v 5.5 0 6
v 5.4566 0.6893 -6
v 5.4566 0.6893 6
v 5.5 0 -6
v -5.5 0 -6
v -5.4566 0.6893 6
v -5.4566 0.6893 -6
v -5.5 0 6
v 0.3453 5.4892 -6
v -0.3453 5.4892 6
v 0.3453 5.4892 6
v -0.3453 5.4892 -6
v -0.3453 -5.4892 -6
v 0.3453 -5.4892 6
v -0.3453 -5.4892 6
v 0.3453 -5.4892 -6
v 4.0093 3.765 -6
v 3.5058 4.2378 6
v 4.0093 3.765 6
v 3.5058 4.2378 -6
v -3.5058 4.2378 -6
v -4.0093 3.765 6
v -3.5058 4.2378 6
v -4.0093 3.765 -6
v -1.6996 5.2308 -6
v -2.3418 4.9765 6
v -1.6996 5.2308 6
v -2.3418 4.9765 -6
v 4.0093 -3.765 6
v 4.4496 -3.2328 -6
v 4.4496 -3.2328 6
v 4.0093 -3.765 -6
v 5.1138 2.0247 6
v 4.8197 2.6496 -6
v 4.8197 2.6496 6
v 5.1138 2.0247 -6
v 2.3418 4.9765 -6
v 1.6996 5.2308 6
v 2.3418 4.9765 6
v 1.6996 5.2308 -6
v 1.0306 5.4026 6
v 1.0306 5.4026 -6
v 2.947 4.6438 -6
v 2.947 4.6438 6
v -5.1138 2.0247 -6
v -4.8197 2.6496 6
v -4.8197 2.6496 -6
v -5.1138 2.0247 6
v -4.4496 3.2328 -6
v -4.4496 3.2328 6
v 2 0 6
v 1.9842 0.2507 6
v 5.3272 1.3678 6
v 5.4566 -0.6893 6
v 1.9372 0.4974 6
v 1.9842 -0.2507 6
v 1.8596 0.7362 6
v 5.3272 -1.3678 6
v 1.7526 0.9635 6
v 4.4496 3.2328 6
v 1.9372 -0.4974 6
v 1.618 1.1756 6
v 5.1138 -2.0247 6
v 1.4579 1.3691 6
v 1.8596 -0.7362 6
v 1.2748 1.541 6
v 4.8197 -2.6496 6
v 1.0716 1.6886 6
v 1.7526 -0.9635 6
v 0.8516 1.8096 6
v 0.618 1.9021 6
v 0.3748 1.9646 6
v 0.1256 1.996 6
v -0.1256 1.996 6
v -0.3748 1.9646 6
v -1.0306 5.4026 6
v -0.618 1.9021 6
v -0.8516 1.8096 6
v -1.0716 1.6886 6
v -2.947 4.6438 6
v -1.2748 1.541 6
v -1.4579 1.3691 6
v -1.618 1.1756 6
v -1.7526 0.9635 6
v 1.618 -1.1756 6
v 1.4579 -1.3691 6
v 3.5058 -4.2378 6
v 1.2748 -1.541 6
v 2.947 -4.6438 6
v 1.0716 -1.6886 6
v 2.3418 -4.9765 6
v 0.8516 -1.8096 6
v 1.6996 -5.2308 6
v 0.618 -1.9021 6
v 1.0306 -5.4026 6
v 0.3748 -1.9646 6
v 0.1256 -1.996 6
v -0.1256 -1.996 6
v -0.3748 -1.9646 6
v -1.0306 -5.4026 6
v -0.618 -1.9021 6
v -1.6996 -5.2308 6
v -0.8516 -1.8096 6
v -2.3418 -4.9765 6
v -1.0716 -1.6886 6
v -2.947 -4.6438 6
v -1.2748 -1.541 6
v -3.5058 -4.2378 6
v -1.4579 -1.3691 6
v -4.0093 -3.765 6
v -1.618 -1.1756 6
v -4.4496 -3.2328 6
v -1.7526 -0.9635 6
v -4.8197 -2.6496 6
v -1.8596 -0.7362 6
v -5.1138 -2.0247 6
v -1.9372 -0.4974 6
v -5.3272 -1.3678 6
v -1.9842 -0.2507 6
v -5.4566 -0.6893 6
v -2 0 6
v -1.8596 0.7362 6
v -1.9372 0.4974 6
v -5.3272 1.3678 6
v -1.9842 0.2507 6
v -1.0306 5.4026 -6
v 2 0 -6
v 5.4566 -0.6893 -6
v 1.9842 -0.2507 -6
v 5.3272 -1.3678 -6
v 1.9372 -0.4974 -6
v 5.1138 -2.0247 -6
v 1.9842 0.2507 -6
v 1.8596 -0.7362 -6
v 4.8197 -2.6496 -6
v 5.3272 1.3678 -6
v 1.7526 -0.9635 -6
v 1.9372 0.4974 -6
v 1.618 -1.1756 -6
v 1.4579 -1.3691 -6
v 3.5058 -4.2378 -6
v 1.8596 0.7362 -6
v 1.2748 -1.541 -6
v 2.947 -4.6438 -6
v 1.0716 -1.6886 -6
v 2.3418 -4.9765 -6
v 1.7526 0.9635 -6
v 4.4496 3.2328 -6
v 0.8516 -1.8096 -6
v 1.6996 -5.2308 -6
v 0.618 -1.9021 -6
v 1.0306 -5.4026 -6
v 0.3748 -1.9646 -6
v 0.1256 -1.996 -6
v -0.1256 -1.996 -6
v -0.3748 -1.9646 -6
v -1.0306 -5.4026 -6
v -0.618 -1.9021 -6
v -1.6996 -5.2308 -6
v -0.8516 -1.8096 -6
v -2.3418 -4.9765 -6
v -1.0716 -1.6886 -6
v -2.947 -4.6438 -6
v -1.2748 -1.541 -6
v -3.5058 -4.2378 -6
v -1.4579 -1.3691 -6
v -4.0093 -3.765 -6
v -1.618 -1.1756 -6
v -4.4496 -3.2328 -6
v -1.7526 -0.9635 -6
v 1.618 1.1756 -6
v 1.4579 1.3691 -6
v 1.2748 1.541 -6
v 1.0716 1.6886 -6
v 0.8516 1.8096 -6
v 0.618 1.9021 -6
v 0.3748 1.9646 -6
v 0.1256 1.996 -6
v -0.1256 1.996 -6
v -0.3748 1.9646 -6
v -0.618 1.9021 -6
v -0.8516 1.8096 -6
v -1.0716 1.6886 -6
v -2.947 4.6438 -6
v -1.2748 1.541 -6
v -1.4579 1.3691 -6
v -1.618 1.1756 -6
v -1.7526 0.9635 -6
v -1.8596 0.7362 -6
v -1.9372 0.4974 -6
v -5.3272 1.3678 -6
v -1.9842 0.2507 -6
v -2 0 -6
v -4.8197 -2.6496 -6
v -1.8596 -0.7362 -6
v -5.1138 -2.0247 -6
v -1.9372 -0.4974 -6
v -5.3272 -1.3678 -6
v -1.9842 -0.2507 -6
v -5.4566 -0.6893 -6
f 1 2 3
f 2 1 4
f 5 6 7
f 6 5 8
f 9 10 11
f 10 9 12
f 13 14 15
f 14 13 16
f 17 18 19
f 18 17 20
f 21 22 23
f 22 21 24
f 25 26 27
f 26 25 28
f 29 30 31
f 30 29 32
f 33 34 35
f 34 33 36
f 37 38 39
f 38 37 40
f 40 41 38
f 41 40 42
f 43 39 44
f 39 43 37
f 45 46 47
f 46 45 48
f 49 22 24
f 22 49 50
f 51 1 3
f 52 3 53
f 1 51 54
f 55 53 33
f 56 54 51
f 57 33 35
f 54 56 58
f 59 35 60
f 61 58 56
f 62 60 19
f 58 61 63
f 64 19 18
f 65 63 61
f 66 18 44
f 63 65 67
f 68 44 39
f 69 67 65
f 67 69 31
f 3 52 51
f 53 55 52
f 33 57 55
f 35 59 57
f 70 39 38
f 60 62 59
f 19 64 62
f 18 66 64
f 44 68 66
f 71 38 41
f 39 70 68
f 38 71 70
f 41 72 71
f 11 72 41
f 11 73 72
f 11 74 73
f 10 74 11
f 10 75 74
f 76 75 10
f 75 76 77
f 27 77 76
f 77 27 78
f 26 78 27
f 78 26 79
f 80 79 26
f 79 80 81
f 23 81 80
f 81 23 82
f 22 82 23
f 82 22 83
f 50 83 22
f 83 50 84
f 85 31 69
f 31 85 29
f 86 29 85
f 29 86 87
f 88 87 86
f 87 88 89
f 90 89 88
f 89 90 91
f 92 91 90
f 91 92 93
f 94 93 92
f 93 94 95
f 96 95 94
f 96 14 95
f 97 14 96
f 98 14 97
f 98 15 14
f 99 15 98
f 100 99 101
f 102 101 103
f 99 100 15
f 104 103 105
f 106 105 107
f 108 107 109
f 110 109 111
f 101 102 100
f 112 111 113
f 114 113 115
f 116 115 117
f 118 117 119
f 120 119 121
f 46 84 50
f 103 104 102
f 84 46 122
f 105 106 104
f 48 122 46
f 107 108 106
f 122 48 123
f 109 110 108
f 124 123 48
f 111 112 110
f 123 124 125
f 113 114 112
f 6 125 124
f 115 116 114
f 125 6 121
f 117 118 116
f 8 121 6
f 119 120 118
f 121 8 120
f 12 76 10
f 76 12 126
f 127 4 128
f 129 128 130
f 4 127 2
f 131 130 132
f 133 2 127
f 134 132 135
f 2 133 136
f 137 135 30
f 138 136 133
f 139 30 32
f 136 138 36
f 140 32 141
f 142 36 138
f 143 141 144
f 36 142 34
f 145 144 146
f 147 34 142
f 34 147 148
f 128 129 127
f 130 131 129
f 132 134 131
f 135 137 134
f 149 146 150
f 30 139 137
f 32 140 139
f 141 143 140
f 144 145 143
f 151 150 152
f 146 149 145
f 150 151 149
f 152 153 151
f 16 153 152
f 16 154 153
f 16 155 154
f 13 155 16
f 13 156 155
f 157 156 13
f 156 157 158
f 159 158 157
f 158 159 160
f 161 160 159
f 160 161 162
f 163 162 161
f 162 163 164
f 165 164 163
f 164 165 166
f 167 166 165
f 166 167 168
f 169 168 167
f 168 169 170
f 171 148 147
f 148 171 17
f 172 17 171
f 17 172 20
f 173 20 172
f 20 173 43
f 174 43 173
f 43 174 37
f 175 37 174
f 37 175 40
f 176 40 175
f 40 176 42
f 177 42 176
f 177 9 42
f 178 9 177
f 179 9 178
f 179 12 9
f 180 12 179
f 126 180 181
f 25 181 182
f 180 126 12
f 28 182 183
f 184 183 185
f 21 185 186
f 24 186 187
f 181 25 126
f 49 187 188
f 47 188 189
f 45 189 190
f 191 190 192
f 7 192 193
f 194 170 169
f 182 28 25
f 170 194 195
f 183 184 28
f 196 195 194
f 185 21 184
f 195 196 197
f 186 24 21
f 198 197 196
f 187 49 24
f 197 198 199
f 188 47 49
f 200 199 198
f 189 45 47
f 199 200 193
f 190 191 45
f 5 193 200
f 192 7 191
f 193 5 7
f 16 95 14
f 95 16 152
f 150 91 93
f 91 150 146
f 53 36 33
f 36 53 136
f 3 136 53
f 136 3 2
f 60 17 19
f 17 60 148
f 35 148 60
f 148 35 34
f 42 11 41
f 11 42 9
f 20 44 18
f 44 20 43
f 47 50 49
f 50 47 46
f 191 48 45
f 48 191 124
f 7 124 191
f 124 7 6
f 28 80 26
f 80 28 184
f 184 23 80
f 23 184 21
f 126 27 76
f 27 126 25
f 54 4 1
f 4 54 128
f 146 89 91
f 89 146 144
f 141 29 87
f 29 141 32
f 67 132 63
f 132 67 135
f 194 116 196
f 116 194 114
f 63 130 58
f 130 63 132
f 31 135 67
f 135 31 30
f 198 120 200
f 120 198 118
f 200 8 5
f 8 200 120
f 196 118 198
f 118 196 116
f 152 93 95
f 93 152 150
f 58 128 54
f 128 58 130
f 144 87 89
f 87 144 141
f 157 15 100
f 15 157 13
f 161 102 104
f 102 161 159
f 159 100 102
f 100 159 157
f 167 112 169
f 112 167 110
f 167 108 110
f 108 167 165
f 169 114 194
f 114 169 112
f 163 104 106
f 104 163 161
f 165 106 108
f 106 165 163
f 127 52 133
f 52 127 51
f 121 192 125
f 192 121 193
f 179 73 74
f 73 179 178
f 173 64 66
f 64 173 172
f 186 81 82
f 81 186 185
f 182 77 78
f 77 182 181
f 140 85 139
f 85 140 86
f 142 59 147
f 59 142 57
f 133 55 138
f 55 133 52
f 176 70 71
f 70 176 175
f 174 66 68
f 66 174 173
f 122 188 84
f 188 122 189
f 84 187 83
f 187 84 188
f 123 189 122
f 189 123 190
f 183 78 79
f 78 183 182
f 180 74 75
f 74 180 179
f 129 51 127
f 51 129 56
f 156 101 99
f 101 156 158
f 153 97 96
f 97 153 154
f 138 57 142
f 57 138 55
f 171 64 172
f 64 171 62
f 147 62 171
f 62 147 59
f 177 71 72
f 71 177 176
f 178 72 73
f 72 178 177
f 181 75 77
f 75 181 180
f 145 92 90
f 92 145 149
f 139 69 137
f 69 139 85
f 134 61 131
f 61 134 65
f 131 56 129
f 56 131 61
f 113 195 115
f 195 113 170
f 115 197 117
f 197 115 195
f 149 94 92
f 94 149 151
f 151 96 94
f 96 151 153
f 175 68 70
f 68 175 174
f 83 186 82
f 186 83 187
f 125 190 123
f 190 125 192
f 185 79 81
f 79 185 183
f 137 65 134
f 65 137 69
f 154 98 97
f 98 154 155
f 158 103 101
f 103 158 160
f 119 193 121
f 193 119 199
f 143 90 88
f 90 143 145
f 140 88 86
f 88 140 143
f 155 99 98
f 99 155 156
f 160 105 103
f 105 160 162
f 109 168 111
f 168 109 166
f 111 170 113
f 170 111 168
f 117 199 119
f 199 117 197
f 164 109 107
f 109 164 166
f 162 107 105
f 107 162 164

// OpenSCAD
$fn = 50;


difference() {
	union() {
		translate(v = [0, 0, -6.0000000000]) {
			cylinder(h = 12, r = 5.5000000000);
		}
	}
	union() {
		translate(v = [0, 0, -100.0000000000]) {
			cylinder(h = 200, r = 2);
		}
	}
}
